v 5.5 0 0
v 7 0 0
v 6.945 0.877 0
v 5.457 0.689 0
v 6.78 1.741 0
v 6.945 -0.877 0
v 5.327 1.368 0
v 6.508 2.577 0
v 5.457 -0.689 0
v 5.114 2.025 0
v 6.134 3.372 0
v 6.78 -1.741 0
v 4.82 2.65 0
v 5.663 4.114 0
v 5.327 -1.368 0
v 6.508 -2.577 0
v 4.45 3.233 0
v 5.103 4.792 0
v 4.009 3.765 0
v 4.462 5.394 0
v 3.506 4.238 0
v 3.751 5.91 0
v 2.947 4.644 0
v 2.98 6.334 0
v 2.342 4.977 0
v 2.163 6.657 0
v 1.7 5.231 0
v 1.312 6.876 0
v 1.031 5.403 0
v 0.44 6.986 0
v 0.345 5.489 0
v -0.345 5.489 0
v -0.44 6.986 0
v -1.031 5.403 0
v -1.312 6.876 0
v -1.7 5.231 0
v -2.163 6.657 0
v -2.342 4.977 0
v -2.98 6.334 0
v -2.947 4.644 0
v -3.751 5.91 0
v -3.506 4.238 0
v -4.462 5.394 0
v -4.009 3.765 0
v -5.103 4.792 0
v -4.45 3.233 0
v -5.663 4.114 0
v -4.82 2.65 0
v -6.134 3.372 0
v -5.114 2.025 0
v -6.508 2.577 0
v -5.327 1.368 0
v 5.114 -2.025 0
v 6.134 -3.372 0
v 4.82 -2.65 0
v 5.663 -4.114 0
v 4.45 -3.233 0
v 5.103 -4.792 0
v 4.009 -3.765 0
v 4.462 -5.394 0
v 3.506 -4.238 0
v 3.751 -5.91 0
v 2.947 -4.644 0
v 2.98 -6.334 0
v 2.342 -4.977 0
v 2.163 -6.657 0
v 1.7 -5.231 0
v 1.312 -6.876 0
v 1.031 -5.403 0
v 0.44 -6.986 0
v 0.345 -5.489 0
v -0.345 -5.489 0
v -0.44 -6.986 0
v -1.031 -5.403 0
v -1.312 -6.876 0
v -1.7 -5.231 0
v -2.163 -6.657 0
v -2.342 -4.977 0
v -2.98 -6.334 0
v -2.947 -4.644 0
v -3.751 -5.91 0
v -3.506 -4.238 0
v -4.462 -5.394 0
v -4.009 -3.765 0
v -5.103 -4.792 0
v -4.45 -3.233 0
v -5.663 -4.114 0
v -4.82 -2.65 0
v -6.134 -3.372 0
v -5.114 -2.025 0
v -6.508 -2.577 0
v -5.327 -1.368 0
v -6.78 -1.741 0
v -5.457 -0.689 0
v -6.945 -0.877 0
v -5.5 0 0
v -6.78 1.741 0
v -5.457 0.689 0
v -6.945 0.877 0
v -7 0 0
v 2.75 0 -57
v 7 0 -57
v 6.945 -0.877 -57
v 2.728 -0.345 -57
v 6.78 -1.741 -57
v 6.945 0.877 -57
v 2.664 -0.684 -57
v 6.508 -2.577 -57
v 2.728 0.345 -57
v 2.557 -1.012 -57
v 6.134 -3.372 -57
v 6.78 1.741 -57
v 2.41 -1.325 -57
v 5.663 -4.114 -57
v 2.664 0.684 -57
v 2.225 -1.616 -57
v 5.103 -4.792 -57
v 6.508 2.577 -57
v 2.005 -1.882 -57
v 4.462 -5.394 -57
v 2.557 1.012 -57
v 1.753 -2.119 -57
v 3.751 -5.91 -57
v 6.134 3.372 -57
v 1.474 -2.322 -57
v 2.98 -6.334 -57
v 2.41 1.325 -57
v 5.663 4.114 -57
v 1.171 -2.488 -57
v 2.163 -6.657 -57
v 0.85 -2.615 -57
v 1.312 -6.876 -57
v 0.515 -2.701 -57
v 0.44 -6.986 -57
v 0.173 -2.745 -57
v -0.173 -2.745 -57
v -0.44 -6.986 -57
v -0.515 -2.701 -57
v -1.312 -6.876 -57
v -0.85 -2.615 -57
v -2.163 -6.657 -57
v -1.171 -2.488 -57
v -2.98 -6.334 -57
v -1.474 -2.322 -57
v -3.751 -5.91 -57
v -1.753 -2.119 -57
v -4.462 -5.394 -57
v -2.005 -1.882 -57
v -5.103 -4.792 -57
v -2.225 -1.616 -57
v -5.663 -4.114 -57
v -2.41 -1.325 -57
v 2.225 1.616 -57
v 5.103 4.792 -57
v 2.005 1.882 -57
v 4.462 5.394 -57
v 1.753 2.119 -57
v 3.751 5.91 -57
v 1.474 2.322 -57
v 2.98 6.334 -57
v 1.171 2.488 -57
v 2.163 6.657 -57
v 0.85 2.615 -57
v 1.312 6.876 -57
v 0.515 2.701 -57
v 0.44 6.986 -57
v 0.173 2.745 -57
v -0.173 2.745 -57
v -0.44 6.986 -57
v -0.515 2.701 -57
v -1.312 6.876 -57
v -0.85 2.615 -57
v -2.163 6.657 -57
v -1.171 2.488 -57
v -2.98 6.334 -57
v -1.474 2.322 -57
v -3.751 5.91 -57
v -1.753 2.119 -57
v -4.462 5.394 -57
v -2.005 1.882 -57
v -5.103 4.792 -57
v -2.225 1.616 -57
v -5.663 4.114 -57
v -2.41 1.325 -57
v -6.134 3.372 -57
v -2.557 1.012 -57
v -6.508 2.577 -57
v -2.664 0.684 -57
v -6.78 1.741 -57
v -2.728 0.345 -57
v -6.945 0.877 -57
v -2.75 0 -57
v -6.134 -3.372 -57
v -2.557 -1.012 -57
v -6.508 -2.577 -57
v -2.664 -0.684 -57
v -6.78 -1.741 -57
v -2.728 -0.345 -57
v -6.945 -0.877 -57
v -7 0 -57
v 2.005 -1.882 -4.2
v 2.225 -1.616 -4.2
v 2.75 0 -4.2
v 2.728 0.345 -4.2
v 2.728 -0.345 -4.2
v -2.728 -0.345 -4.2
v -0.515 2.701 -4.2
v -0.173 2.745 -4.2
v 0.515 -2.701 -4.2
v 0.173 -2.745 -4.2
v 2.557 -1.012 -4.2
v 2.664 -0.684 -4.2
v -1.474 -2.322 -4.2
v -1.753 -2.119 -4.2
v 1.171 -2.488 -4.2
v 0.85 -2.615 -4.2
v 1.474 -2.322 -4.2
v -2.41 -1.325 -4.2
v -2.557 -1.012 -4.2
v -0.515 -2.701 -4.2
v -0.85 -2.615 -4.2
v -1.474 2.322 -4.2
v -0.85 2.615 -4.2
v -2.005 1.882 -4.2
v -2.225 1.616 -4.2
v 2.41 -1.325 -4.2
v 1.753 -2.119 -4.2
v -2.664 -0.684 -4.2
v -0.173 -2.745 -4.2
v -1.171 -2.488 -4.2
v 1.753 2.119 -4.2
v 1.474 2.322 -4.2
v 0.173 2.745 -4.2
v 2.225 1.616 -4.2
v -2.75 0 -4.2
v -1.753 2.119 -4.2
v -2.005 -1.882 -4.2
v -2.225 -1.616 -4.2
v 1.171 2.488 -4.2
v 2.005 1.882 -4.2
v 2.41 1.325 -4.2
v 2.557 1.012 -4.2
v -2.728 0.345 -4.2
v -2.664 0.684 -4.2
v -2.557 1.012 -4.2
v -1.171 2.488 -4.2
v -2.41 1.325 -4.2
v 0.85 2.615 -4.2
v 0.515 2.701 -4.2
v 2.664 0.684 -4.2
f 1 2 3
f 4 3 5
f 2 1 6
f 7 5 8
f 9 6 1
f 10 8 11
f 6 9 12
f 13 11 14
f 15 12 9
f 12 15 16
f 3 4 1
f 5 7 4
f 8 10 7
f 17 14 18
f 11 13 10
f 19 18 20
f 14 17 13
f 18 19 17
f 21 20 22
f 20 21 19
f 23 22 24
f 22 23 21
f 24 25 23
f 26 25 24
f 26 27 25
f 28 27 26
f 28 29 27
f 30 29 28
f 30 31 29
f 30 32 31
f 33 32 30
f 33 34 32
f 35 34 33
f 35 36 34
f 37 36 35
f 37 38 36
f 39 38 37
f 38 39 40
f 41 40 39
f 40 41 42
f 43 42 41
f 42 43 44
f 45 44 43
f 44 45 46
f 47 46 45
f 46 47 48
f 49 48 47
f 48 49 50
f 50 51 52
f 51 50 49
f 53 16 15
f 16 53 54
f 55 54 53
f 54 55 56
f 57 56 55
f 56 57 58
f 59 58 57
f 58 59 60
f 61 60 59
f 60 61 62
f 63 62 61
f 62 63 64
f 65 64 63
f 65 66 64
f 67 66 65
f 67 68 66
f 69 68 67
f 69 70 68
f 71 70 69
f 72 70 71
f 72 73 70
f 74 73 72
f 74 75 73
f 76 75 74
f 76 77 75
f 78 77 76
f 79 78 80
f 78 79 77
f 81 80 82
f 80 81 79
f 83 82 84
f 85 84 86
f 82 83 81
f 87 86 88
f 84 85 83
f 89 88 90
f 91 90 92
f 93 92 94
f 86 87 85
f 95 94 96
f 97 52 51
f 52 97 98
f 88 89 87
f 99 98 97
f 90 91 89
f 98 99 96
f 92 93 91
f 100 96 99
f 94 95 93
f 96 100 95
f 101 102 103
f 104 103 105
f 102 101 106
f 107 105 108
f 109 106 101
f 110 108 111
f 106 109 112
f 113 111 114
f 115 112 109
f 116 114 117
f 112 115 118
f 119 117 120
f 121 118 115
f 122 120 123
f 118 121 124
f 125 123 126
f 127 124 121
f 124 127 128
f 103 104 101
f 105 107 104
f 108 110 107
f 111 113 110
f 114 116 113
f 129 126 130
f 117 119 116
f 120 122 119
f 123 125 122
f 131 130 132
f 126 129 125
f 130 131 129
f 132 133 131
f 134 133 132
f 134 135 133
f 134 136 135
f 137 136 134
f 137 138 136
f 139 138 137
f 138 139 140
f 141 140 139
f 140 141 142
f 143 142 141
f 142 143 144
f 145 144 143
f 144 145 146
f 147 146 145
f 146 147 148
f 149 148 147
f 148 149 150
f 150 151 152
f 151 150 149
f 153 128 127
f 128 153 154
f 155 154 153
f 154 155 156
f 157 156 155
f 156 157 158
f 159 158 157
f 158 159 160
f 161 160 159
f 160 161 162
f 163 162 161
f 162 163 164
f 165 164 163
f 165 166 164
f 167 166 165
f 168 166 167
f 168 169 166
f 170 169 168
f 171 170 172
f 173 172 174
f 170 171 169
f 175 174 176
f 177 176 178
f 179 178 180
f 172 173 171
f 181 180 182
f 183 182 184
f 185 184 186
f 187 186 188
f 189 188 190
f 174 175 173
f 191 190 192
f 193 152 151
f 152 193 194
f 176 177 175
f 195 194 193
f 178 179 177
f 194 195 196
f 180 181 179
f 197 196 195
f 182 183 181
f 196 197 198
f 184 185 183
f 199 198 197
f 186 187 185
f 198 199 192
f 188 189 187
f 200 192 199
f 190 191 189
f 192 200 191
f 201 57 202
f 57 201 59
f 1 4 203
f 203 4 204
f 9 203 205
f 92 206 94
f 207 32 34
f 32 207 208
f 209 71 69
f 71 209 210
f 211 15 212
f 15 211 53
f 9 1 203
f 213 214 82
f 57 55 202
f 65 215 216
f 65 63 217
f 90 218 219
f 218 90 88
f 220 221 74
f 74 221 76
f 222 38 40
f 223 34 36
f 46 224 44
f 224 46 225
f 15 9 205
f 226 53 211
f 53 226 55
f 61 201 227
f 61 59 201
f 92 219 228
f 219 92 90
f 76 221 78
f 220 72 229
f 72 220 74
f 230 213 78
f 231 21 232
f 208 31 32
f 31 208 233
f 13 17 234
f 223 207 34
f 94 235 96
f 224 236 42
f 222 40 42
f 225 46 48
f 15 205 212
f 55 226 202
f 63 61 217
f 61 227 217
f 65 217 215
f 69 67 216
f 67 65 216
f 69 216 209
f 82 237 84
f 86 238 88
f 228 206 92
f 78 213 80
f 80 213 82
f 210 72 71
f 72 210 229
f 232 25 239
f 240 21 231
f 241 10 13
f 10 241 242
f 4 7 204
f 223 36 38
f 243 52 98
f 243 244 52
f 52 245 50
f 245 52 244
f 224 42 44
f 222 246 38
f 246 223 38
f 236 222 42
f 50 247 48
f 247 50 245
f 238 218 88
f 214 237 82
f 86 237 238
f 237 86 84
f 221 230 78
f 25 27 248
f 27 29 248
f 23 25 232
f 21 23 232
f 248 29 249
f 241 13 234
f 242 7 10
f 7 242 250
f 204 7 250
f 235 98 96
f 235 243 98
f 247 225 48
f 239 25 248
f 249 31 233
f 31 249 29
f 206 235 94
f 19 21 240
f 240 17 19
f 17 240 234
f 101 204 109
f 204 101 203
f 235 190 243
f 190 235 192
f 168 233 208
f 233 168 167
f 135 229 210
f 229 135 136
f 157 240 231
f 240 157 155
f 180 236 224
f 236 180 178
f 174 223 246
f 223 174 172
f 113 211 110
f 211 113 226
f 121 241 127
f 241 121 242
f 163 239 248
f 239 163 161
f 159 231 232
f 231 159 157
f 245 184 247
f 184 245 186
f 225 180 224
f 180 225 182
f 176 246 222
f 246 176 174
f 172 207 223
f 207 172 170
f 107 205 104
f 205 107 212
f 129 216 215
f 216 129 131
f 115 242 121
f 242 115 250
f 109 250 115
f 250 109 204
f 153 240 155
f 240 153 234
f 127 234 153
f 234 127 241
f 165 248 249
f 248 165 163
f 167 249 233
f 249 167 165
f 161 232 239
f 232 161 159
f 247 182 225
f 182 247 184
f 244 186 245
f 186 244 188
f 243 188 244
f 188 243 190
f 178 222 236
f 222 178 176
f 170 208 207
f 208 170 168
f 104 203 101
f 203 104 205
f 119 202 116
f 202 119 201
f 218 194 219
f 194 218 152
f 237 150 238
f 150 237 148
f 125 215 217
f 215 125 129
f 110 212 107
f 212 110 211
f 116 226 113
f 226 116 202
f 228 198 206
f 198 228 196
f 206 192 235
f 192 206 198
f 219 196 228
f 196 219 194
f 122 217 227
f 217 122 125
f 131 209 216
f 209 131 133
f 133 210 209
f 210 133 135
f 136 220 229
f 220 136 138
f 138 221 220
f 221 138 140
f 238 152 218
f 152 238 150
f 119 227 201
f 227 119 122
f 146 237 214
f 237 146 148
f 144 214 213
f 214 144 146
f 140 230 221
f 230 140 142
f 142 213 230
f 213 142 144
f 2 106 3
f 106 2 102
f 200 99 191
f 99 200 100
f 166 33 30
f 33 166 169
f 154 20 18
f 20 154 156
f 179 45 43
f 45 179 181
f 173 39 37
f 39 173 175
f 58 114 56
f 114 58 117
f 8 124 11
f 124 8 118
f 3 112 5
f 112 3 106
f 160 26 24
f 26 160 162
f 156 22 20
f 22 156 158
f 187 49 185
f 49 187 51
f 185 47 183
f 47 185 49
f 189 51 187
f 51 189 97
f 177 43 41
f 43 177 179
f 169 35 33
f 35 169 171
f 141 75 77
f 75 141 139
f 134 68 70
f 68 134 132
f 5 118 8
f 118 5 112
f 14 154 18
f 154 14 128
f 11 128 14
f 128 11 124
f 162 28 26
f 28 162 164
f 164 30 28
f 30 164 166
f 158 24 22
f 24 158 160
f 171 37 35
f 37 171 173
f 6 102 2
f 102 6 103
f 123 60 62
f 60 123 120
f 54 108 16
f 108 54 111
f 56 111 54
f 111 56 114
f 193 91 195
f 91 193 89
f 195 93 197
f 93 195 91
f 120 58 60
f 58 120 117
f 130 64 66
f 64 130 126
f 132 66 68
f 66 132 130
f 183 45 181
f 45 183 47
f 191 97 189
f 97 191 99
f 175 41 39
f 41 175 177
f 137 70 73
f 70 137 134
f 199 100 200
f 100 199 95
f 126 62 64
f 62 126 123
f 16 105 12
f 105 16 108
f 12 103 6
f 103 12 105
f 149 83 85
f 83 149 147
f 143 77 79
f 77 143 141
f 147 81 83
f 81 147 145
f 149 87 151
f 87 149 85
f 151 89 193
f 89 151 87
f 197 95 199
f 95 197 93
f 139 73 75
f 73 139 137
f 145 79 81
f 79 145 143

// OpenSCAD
$fn = 50;


difference() {
	union() {
		translate(v = [0, 0, -57.0000000000]) {
			cylinder(h = 57, r = 7.0000000000);
		}
		cylinder(h = 0, r = 16.0000000000);
	}
	union() {
		translate(v = [0, 0, 0]) {
			rotate(a = [0, 0, 0]) {
				difference() {
					union() {
						#translate(v = [0, 0, -57.0000000000]) {
							cylinder(h = 57, r = 2.2500000000);
						}
						#translate(v = [0, 0, -4.2000000000]) {
							cylinder(h = 4.2000000000, r = 7.0000000000, r1 = 2.7500000000, r2 = 5.5000000000);
						}
						#translate(v = [0, 0, -57.0000000000]) {
							cylinder(h = 57, r = 2.7500000000);
						}
						#translate(v = [0, 0, -57.0000000000]) {
							cylinder(h = 57, r = 2.2500000000);
						}
					}
					union();
				}
			}
		}
	}
}
